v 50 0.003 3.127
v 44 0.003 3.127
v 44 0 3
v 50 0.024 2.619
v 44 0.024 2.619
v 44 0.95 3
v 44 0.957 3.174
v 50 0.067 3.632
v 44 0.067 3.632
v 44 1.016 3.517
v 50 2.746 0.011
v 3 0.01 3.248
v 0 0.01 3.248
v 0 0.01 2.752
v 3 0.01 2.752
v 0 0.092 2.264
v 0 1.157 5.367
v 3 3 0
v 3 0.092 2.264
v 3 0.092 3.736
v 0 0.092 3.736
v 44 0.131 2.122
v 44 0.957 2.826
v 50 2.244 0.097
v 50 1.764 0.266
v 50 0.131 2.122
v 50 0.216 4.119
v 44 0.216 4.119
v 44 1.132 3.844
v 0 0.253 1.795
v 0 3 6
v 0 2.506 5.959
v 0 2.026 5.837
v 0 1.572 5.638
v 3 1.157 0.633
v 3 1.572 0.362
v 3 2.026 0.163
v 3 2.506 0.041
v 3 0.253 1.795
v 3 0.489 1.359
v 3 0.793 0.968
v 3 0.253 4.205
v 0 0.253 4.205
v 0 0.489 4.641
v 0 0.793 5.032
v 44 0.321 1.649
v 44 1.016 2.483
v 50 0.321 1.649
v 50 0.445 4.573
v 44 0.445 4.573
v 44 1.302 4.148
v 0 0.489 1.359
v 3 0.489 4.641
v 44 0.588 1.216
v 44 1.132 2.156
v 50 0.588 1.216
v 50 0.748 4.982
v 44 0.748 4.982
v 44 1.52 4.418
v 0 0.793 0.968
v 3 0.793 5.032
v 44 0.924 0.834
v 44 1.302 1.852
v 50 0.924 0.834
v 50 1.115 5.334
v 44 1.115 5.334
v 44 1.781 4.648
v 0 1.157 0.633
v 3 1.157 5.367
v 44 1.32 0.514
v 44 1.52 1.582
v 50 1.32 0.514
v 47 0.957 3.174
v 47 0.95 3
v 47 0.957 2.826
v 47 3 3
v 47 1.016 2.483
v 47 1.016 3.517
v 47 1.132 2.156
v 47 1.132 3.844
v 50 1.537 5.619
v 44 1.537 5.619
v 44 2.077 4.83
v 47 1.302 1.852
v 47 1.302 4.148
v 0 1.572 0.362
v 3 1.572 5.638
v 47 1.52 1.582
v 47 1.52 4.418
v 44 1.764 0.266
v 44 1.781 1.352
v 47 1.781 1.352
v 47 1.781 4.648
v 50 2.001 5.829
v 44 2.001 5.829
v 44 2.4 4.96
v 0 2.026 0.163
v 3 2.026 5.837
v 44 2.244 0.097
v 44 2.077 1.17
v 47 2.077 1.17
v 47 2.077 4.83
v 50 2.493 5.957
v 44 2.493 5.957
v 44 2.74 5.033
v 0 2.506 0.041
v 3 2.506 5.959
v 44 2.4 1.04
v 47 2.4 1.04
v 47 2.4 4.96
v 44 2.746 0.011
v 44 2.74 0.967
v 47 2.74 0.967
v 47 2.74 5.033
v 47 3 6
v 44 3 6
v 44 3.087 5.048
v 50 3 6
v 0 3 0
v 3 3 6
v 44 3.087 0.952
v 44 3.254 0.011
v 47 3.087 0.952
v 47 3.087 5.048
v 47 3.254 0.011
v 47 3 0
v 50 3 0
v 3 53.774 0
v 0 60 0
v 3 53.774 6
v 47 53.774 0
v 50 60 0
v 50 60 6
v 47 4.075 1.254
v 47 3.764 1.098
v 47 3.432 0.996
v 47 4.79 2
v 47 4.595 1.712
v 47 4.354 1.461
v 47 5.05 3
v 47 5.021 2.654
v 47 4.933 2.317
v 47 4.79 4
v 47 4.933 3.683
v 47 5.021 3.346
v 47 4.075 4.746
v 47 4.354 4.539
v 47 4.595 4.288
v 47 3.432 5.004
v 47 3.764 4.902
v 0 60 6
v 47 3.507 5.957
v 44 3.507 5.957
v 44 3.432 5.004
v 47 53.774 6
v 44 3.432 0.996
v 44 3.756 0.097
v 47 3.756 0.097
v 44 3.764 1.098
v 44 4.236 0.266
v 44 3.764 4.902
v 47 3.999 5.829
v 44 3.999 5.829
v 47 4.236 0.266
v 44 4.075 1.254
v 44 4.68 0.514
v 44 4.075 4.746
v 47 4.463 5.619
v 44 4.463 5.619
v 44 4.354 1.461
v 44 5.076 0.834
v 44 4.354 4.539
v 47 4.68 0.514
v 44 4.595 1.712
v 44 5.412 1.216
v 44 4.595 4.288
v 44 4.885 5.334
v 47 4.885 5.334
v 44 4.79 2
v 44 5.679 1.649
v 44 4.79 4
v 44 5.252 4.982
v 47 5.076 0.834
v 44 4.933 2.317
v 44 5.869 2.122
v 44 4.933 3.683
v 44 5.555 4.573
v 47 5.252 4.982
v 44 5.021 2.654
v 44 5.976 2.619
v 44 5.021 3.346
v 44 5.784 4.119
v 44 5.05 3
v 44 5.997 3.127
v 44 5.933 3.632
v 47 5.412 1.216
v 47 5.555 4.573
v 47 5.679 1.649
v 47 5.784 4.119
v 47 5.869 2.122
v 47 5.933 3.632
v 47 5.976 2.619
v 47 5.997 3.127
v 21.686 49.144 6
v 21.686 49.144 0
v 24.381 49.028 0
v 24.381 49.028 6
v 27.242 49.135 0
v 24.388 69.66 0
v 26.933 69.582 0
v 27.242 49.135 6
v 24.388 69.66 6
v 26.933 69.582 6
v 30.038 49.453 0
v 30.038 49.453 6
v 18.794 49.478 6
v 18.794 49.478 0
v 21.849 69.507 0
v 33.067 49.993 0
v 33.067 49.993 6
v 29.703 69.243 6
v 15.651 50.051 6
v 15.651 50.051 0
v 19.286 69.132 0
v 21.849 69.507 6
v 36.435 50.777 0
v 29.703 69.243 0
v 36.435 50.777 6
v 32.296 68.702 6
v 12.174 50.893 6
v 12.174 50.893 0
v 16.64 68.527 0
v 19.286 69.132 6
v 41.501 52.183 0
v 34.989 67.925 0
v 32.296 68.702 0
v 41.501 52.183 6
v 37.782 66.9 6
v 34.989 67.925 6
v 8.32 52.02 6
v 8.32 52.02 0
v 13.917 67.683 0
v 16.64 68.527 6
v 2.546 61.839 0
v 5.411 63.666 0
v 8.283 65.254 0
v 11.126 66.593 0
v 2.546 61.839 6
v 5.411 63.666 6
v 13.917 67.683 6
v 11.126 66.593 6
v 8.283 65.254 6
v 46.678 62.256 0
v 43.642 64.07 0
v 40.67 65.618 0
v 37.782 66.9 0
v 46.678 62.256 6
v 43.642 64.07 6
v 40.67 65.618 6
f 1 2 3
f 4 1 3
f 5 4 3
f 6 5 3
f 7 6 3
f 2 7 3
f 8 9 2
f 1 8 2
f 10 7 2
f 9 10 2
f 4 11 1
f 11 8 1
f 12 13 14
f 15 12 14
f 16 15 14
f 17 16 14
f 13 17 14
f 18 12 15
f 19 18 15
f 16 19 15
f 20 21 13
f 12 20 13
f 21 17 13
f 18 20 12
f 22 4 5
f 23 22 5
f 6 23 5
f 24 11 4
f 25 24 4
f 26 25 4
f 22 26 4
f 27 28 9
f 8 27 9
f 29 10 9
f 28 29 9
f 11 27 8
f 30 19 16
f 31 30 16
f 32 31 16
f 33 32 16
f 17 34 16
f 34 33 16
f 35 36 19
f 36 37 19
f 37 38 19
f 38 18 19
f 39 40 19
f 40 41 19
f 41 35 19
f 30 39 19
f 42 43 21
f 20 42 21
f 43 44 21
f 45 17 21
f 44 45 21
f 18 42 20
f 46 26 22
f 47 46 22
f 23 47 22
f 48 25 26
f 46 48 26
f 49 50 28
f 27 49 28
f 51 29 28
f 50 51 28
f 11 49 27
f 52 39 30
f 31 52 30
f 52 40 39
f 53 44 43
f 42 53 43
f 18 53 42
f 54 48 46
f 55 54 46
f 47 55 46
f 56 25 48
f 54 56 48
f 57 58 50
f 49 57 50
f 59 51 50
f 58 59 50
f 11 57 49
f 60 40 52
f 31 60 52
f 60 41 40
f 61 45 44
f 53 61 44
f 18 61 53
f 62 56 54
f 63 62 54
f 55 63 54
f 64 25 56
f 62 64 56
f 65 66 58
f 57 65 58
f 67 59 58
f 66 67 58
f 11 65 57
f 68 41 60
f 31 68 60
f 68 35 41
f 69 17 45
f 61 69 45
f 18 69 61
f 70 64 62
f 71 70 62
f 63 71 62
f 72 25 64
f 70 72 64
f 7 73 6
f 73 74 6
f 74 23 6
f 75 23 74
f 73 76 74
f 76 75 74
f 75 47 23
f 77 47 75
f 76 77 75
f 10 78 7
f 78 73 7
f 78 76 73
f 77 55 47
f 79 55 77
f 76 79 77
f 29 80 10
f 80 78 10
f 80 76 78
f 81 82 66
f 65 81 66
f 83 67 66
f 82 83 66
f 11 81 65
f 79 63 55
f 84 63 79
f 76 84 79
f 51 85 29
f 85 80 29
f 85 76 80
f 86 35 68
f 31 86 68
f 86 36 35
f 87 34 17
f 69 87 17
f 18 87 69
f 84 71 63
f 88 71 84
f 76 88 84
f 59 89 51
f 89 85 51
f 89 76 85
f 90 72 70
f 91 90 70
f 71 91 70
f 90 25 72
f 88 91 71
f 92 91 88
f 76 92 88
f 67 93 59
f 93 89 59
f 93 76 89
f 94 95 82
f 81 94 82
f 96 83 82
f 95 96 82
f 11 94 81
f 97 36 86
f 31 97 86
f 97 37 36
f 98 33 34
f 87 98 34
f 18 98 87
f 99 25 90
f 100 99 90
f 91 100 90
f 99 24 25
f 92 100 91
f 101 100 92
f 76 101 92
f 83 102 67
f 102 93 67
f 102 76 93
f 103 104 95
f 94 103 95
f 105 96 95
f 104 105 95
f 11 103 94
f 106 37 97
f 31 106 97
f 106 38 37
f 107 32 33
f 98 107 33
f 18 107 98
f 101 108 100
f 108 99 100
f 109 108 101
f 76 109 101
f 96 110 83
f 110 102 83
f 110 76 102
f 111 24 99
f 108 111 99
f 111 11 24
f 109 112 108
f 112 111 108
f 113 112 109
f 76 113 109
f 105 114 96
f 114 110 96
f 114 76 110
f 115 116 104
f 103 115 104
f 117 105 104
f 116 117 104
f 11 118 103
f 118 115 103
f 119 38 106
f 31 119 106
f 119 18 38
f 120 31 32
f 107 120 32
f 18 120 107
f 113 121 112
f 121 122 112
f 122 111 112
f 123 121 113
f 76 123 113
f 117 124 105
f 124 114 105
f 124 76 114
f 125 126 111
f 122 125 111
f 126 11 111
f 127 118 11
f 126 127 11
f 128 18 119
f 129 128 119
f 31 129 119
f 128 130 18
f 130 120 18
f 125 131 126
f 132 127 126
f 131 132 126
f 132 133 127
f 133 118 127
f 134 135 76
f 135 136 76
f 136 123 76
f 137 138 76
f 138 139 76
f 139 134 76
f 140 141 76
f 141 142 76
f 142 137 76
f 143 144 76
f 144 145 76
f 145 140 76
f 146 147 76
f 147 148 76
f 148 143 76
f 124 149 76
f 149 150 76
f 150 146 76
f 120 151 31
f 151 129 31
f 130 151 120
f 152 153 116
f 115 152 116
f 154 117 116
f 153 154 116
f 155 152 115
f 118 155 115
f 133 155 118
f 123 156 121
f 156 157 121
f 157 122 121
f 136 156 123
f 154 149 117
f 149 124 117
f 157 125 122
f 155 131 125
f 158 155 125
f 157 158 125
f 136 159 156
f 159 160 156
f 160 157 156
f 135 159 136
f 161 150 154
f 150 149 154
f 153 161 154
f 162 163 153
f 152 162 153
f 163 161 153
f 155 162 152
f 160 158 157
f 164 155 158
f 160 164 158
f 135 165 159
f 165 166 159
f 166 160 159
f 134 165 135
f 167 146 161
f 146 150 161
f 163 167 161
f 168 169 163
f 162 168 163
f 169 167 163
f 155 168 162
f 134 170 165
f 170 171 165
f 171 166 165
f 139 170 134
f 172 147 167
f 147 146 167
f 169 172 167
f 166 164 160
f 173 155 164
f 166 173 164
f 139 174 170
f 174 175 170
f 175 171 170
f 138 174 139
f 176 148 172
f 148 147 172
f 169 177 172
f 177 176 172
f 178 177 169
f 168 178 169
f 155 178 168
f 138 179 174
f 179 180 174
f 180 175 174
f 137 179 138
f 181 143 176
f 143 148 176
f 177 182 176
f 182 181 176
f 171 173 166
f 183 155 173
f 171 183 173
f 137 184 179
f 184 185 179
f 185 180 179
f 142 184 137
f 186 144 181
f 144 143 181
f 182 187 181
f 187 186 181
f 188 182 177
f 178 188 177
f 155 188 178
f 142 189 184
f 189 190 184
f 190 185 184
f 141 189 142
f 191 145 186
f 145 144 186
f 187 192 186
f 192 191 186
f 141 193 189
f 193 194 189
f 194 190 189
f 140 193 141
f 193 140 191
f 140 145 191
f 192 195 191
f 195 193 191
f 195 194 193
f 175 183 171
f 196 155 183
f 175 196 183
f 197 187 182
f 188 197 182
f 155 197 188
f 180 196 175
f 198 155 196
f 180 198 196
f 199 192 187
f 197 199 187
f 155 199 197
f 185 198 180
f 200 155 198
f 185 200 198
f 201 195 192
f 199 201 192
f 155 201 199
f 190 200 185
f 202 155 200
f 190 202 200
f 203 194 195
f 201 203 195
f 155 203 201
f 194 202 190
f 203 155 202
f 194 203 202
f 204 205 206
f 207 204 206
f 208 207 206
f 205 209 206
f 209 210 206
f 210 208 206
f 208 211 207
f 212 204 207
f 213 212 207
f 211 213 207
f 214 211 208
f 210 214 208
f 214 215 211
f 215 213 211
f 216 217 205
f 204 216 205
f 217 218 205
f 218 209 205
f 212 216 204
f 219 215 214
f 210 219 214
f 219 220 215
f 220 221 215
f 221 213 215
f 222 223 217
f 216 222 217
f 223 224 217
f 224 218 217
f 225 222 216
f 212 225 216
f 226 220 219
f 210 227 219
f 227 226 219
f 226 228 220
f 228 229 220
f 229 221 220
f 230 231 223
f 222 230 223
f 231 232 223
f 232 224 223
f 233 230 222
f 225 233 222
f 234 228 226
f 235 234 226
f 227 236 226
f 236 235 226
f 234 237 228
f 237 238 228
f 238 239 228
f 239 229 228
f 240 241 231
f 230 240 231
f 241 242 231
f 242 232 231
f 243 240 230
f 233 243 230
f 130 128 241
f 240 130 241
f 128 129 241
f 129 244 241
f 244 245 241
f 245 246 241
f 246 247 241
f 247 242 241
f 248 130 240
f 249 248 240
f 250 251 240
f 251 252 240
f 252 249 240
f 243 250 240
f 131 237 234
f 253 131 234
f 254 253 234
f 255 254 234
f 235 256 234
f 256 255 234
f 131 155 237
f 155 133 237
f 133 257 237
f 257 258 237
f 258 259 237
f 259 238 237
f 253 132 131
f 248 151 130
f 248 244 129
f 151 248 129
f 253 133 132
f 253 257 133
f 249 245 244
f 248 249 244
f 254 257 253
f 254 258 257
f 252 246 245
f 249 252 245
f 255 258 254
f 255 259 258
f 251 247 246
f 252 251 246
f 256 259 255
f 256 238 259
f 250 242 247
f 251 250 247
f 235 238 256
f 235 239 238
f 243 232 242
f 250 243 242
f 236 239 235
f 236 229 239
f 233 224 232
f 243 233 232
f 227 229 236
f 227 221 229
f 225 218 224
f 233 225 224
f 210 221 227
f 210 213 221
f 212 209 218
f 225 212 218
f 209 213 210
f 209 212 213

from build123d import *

# Parameters (mm, degrees)
EXTRUDE_1_DEPTH          = 6
CUT_EXTRUDE_1_DEPTH      = 86.959139
CUT_EXTRUDE_1_DEPTH_BACK = 86.959139
SKETCH_3_R               = 2.05
EXTRUDE_2_DEPTH          = 3


with BuildPart() as part:
    # 草图1 → 凸台-拉伸1 (new body)
    with BuildSketch(Plane.XY):
        with BuildLine():
            Line((0, 0), (0, 60))
            add(Edge.make_bspline(
                [(0, 60), (6.932027, 65.303268), (25.02154, 74.137336), (42.974448, 65.073065), (50, 60)],
                knots=[0, 0, 0, 0, 0.50035, 1, 1, 1, 1], degree=3))
            Line((50, 60), (50, 0))
            Line((50, 0), (47, 0))
            Line((47, 0), (47, 53.774366))
            add(Edge.make_bspline(
                [(3, 53.774366), (9.965867, 51.405734), (25.033485, 46.45053), (39.925766, 51.813875), (47, 53.774366)],
                knots=[0, 0, 0, 0, 0.500345, 1, 1, 1, 1], degree=3))
            Line((3, 53.774366), (3, 0))
            Line((3, 0), (0, 0))
        make_face()
    extrude(amount=EXTRUDE_1_DEPTH)

    # 草图2 → 切除-拉伸1 (cut, two sides: drawn at the far end of the back side and taken through both)
    with BuildSketch(Plane.ZY.offset(-CUT_EXTRUDE_1_DEPTH_BACK)):
        with BuildLine():
            Line((0, 0), (3, 0))
            ThreePointArc((3, 0), (0.87868, 0.87868), (0, 3))
            Line((0, 3), (0, 0))
        make_face()
        with BuildLine():
            Line((6, 0), (6, 3))
            ThreePointArc((6, 3), (5.12132, 0.87868), (3, 0))
            Line((3, 0), (6, 0))
        make_face()
    extrude(amount=CUT_EXTRUDE_1_DEPTH + CUT_EXTRUDE_1_DEPTH_BACK, mode=Mode.SUBTRACT)

    # 草图3 → 凸台-拉伸2 (add)
    with BuildSketch(Plane.ZY.offset(-47)):
        with BuildLine():
            ThreePointArc((6, 3), (3, 6), (0, 3))
            ThreePointArc((0, 3), (3, 0), (6, 3))
        make_face()
        with Locations(Location((3, 3, 0), (0, 0, 270))):
            Circle(SKETCH_3_R, mode=Mode.SUBTRACT)
    extrude(amount=EXTRUDE_2_DEPTH)


solid = part.part
